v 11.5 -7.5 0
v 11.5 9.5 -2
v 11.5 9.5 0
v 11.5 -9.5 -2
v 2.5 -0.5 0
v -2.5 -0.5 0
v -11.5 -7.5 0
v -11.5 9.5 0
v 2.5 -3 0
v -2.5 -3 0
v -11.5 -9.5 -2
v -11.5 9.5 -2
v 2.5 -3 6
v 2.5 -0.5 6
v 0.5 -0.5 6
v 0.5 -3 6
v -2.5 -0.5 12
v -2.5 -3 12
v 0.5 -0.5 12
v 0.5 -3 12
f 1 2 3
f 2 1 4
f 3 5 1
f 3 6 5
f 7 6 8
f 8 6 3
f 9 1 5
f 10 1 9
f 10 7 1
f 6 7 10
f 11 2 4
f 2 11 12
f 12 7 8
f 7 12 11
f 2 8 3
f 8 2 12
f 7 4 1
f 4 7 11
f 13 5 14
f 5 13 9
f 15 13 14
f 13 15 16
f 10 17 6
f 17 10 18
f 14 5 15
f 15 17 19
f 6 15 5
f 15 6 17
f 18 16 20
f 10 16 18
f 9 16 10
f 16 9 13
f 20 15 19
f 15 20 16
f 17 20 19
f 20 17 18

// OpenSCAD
h1 = 6;
h2 = 12;
t = 2;

w1 = 5;
w2 = 3;
d = 2.5;

dd = 19;
ww = 23;

to_front = 6.5;

translate([0, 0, -t/ 2])
difference() {
  cube([ww, dd, t], center = true);

  //taper
  translate([0, -dd/2, sqrt(2*2.5*2.5)-t/2])
  rotate([45, 0, 0])
  cube([ww, 5, 5], center = true);
}

translate([0, -(dd/2-d/2-to_front), 0]) {
  color("blue")
  translate([0, 0, h1/2])
  cube([w1, d, h1], center = true);

  color("orange")
  translate([-w1/2+w2/2, 0, h2/2])
  cube([w2, d, h2], center = true);
}
